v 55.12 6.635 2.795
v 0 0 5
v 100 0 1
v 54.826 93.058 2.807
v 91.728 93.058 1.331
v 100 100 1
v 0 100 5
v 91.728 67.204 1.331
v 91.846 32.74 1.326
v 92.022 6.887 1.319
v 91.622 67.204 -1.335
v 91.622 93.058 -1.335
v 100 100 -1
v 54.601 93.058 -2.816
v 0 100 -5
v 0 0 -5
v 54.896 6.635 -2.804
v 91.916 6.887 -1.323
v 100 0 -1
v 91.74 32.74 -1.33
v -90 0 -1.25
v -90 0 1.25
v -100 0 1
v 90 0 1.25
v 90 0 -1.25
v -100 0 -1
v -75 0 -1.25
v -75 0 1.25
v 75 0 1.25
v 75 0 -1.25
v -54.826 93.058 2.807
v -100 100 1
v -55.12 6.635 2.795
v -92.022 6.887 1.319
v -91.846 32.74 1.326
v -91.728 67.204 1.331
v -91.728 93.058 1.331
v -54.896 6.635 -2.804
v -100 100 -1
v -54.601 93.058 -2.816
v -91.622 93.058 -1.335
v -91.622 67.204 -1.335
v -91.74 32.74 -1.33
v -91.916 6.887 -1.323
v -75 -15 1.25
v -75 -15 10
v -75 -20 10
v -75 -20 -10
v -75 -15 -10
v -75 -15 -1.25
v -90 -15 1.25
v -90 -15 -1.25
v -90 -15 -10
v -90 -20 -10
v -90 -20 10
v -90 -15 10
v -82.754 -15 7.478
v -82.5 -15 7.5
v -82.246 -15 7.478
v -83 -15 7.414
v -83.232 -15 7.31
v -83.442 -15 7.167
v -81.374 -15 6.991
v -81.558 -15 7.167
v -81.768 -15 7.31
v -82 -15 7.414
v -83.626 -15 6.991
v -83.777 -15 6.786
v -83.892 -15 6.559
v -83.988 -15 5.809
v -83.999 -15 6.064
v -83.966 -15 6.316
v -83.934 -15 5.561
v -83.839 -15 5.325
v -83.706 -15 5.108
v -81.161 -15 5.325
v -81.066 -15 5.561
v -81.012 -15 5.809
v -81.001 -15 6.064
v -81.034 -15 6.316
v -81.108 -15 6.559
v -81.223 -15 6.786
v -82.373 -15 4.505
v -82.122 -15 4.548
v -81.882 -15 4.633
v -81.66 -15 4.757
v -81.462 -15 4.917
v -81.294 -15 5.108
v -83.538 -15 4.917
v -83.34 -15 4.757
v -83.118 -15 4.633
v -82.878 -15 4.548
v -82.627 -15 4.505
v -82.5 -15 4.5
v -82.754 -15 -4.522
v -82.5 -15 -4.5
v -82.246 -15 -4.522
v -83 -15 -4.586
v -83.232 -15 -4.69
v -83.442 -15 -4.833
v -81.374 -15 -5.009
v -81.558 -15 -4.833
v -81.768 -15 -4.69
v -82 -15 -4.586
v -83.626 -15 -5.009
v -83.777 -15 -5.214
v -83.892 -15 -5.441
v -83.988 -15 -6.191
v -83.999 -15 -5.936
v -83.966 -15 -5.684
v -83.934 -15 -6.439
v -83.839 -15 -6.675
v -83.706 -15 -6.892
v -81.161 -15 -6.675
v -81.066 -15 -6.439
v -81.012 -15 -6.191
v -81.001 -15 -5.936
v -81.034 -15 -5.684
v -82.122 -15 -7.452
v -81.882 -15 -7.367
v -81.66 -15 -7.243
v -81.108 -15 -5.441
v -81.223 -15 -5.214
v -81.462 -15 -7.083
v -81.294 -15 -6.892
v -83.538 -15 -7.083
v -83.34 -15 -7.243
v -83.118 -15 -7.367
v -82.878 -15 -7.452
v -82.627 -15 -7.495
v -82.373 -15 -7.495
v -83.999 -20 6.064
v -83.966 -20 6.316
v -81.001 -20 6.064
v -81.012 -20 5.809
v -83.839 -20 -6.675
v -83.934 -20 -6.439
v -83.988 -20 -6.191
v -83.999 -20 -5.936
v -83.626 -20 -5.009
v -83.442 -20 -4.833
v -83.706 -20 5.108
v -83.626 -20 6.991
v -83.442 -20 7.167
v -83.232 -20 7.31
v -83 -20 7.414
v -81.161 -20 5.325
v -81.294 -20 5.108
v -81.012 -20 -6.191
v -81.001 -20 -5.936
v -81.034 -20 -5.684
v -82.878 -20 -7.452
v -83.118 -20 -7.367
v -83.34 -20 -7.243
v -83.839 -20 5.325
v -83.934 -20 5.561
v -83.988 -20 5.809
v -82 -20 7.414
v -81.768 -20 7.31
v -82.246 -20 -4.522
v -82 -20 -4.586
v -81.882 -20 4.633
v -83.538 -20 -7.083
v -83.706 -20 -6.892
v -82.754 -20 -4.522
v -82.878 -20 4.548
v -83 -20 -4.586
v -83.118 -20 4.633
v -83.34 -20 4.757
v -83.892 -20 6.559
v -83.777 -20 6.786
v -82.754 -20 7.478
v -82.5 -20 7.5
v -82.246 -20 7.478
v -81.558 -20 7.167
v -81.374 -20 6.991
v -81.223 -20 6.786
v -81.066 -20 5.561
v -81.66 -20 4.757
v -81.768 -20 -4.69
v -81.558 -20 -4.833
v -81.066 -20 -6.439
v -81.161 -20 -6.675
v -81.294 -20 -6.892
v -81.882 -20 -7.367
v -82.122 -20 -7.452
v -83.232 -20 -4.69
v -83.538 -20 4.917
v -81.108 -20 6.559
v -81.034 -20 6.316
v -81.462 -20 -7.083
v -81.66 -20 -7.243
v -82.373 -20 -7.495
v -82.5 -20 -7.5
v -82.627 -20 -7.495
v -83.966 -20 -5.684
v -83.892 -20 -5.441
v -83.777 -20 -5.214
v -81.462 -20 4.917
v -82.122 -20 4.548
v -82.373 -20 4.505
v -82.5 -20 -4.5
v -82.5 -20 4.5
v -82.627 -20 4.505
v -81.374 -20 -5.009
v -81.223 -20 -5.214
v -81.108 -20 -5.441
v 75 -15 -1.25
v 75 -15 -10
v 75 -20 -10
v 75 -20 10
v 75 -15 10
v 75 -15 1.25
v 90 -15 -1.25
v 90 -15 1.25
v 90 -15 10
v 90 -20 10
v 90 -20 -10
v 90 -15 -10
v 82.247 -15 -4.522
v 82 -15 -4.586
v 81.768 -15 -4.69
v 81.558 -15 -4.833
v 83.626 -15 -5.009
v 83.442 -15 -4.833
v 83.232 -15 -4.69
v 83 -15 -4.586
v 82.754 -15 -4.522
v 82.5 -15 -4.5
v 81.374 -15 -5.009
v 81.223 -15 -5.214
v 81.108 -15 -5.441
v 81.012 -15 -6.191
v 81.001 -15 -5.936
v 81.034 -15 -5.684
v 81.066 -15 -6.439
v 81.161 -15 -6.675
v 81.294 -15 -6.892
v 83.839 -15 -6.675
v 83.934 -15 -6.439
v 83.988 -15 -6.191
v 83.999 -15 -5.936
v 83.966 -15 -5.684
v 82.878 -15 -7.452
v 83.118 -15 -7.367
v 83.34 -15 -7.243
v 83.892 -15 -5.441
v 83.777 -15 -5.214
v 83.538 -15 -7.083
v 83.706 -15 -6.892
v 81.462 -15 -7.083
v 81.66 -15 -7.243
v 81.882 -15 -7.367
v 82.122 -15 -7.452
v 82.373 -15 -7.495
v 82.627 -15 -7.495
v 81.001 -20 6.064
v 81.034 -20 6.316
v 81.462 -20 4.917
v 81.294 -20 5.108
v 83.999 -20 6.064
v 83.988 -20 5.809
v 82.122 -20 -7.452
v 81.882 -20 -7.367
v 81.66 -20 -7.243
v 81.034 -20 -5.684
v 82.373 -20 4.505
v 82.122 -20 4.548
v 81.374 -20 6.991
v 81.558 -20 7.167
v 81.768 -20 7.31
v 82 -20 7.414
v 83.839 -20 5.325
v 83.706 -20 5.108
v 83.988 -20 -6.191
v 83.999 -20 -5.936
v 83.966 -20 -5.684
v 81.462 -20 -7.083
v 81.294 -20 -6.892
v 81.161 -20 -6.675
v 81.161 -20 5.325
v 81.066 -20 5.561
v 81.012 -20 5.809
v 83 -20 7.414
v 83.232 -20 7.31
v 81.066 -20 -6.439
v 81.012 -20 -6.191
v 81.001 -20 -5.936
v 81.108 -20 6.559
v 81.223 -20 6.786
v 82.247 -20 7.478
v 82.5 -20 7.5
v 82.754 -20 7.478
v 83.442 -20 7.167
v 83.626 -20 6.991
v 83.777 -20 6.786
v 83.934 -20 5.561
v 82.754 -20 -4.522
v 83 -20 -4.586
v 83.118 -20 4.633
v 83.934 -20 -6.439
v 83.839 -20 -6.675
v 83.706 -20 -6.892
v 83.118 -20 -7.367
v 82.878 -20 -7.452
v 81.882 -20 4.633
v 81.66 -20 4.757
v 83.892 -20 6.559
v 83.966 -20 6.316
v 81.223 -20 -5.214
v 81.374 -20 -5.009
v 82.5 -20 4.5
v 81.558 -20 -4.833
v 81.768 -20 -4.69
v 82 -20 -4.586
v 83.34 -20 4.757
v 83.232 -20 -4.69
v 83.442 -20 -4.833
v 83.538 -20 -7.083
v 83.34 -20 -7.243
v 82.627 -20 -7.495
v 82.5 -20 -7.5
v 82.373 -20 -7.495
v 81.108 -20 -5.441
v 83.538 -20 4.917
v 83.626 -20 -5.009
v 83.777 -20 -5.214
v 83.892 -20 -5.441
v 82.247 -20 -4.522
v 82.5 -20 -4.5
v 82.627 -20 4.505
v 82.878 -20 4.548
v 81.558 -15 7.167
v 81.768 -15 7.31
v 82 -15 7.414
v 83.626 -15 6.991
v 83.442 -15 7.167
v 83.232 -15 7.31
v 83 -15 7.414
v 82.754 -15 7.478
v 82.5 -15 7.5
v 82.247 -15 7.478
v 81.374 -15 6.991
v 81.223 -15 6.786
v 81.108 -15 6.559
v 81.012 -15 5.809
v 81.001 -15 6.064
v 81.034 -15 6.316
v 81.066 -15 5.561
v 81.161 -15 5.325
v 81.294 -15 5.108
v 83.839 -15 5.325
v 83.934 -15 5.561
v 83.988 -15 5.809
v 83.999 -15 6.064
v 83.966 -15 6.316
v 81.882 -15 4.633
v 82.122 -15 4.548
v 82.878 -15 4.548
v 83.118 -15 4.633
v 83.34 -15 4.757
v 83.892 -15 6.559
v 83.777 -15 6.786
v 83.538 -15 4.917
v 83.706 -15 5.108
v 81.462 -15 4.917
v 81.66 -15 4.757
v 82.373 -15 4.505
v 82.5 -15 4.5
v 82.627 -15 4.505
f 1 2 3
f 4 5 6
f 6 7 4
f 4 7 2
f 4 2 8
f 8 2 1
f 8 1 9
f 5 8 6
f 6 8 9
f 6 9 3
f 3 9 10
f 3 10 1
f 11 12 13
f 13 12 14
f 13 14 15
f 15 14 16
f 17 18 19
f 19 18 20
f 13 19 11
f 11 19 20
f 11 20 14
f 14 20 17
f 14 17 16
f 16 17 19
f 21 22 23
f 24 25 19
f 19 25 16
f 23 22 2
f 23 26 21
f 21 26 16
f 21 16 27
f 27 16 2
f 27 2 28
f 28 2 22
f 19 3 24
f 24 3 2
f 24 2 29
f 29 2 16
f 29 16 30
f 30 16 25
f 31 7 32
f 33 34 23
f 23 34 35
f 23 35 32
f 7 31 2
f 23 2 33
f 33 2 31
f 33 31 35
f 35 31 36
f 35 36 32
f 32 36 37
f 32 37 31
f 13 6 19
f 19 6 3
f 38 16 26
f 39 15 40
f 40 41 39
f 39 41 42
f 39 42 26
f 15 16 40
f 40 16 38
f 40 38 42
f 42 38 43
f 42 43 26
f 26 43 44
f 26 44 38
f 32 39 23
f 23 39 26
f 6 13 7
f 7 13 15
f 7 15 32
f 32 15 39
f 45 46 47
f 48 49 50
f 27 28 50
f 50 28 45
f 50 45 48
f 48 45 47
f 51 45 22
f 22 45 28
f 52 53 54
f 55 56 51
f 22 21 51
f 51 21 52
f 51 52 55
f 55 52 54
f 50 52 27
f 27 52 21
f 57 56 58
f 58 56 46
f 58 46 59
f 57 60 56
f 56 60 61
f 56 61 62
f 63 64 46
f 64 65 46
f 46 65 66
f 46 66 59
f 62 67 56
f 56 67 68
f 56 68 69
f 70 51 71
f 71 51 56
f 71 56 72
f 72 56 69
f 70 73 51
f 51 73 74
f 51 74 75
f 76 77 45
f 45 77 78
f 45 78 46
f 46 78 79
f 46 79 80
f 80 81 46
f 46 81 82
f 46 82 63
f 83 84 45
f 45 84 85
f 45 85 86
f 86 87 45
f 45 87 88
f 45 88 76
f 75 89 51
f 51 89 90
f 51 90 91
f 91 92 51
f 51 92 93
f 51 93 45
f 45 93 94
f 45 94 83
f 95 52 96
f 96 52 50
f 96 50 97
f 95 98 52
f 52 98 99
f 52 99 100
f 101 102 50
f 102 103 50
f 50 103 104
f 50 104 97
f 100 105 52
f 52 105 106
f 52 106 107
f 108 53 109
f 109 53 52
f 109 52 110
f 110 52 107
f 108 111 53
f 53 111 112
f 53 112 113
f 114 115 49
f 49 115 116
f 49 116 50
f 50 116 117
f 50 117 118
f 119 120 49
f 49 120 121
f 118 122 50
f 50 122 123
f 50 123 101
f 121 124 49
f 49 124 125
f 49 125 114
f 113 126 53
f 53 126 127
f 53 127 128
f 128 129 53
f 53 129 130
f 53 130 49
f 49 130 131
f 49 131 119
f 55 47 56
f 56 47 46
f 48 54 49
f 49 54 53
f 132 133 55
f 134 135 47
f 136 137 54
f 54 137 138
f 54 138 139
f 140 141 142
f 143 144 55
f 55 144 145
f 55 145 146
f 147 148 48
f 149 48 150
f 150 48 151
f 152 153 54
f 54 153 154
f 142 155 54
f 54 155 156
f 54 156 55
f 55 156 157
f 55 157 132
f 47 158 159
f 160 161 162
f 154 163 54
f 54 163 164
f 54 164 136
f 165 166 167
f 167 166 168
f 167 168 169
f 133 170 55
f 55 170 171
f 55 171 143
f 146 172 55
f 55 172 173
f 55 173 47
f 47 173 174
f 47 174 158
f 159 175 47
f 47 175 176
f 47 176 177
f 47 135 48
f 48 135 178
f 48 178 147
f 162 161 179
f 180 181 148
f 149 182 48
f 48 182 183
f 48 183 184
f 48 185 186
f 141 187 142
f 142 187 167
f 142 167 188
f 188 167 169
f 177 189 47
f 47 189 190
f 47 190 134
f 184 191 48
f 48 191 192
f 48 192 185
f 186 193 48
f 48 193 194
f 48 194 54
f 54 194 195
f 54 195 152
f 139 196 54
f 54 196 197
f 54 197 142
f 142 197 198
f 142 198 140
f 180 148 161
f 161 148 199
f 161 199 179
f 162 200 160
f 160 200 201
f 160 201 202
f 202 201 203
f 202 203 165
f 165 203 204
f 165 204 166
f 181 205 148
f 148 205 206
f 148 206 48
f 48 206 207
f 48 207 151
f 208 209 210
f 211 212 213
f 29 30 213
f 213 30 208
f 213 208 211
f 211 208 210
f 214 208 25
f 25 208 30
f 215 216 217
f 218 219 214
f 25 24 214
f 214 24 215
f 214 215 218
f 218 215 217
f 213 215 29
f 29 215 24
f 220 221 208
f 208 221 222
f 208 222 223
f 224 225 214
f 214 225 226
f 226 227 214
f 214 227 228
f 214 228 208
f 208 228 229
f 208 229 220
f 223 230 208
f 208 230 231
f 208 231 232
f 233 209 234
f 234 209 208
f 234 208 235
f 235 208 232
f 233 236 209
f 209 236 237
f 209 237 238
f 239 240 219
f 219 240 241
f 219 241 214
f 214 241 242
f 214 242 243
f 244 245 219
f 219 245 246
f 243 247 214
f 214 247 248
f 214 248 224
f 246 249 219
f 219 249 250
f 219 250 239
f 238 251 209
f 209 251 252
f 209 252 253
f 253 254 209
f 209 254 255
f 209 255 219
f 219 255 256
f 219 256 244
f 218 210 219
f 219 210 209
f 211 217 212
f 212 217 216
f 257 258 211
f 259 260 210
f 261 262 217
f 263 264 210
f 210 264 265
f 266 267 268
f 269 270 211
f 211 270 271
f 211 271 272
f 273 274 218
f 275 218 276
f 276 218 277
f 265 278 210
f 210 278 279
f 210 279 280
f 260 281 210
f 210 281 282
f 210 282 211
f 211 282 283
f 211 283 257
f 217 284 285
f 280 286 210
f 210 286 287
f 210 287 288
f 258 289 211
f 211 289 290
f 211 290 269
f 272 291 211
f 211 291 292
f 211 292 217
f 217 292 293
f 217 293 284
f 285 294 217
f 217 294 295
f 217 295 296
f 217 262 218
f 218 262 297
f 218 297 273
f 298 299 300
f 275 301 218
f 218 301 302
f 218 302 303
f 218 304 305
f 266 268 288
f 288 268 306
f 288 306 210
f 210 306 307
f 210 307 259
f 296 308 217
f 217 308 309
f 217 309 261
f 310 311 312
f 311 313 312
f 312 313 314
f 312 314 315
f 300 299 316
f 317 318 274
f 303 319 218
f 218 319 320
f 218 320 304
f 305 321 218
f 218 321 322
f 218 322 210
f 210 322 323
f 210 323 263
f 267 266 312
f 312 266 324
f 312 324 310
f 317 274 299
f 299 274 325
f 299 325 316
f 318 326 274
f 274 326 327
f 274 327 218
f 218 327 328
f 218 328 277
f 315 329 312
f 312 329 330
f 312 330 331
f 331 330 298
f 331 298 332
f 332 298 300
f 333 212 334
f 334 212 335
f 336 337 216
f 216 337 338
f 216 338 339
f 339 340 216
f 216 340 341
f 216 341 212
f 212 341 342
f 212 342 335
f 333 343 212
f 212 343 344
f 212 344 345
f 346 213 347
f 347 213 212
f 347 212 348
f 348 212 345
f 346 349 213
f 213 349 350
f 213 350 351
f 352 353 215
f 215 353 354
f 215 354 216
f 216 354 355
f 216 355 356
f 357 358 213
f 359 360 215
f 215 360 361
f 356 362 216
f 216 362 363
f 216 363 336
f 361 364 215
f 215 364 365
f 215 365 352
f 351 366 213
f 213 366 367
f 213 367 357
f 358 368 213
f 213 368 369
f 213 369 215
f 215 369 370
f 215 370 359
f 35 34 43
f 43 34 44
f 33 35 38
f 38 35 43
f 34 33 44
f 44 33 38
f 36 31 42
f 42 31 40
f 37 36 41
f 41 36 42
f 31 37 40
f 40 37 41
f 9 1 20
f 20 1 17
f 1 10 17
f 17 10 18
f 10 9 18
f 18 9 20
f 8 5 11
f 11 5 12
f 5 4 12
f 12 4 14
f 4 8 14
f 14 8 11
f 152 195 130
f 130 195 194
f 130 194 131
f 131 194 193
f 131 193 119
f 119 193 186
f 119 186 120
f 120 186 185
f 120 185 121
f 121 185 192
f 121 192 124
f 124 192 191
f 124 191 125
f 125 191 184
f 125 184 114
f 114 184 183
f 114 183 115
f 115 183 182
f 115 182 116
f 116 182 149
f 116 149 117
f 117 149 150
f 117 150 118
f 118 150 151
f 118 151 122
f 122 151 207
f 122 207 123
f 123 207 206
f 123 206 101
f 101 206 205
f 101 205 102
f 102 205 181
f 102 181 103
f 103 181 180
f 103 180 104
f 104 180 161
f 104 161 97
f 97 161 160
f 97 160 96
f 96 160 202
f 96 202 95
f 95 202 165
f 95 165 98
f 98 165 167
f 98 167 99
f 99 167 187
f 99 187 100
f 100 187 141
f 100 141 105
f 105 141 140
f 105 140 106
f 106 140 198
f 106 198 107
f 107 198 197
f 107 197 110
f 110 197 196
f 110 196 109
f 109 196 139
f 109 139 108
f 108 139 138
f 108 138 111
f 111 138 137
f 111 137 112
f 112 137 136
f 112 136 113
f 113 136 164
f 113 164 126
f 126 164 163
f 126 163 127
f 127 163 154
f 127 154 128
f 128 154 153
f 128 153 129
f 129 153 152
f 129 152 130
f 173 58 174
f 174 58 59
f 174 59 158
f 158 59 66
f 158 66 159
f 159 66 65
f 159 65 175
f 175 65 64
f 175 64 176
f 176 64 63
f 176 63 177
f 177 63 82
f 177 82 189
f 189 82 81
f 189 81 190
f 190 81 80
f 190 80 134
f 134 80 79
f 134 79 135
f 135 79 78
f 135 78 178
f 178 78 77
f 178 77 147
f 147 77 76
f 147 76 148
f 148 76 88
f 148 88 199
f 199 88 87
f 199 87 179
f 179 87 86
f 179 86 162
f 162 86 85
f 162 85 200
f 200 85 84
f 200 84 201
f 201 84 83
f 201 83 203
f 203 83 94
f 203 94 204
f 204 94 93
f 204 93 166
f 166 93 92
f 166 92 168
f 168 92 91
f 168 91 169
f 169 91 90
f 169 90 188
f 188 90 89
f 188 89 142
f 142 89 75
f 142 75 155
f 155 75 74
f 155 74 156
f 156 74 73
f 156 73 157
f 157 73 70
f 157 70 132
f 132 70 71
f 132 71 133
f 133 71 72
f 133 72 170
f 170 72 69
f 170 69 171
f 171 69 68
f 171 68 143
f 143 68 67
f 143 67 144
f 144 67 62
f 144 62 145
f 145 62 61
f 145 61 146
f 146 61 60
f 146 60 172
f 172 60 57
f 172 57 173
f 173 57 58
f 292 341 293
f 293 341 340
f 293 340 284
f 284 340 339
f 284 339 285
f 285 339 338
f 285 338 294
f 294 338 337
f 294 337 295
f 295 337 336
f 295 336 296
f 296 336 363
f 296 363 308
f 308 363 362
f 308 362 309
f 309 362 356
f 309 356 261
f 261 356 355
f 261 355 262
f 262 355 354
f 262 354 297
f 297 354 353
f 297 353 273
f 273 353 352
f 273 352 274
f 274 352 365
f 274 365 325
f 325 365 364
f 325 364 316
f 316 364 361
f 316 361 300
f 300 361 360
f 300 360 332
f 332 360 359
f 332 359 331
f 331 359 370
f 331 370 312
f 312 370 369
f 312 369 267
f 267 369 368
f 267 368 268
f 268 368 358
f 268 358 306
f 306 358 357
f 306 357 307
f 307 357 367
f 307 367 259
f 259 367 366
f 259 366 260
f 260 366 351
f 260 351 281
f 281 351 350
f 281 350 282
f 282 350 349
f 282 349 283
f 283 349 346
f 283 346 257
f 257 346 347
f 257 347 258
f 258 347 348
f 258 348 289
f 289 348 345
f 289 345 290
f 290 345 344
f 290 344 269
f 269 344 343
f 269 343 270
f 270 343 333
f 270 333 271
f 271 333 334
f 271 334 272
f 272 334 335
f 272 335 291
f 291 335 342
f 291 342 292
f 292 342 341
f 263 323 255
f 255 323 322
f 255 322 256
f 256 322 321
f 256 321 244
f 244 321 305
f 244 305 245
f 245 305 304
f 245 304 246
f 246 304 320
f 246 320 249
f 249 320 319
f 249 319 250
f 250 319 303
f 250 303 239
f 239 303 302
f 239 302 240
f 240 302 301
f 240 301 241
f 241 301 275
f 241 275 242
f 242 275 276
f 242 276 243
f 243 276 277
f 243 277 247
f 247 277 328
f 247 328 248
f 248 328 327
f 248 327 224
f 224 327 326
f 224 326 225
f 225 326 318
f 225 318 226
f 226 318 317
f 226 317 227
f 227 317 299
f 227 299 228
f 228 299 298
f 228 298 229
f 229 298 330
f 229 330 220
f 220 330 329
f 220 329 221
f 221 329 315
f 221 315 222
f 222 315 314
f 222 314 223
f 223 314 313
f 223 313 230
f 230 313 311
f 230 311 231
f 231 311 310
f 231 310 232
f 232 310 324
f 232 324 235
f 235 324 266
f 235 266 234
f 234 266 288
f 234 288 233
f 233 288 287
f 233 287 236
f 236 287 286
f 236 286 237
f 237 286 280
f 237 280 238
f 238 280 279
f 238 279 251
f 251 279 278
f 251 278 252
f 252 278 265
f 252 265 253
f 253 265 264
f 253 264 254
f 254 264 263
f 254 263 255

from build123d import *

# Parameters (mm, degrees)
BOSS_EXTRUDE4_DEPTH     = 100
SKETCH8_W               = 15
SKETCH8_H               = 2.5
BOSS_EXTRUDE5_DEPTH     = 15
SKETCH9_W               = 15
SKETCH9_H               = 20
BOSS_EXTRUDE6_DEPTH     = 5
CUT_EXTRUDE1_REACH      = 144.354
SKETCH11_R              = 1.5
CUT_EXTRUDE2_DEPTH      = 5
MIRROR4_COPY_1_SKETCH_R = 1.5
MIRROR4_COPY_1_DEPTH    = 5


with BuildPart() as part:
    # Sketch7 → Boss-Extrude4 (new body)
    with BuildSketch(Plane(origin=(0, 0, 0), x_dir=(1, 0, 0), z_dir=(0, 1, 0))):
        Polygon((100, -1), (100, 1), (0, 5), (-100, 1), (-100, -1), (0, -5), align=None)
    extrude(amount=BOSS_EXTRUDE4_DEPTH)

    # Sketch8 → Boss-Extrude5 (add)
    with BuildSketch(Plane.XZ):
        with Locations((-82.5, 0)):
            Rectangle(SKETCH8_W, SKETCH8_H)
    boss_extrude5 = extrude(amount=BOSS_EXTRUDE5_DEPTH)

    # Sketch9 → Boss-Extrude6 (add)
    with BuildSketch(Plane.XZ.offset(15)):
        with Locations((-82.5, 0)):
            Rectangle(SKETCH9_W, SKETCH9_H)
    boss_extrude6 = extrude(amount=BOSS_EXTRUDE6_DEPTH)

    # Mirror1: Boss-Extrude5, Boss-Extrude6 across plane
    add(boss_extrude5.mirror(Plane(origin=(0, 0, 0), x_dir=(0, 0, 1), z_dir=(1, 0, 0))))
    add(boss_extrude6.mirror(Plane(origin=(0, 0, 0), x_dir=(0, 0, 1), z_dir=(1, 0, 0))))

    # Cut-Extrude1: up to this plane
    cut_extrude1_end = Plane(origin=(-100, 100, -1), z_dir=(0.03996803834887159, 0, 0.9992009587217895))
    # Sketch10 → Cut-Extrude1 (cut, up to the surface)
    with BuildSketch(Plane(origin=(-0.199680511, 0, 4.99201278), x_dir=(0.9992009587217895, 0, 0.03996803834887158), z_dir=(-0.039968038348871575, 0, 0.9992009587217894)), mode=Mode.PRIVATE) as cut_extrude1_sk1:
        Polygon((-91.601994525, 67.204299414), (-91.601994525, 93.057612221), (-54.669790851, 93.057612221), align=None)
    cut_extrude1_tool1 = split(extrude(cut_extrude1_sk1.sketch, amount=-CUT_EXTRUDE1_REACH, mode=Mode.PRIVATE), bisect_by=cut_extrude1_end, keep=Keep.BOTH, mode=Mode.PRIVATE)
    # Sketch10 → Cut-Extrude1 (cut, up to the surface)
    with BuildSketch(Plane(origin=(-0.199680511, 0, 4.99201278), x_dir=(0.9992009587217895, 0, 0.03996803834887158), z_dir=(-0.039968038348871575, 0, 0.9992009587217894)), mode=Mode.PRIVATE) as cut_extrude1_sk2:
        Polygon((-91.895790601, 6.886941419), (-54.964445552, 6.635106072), (-91.719500606, 32.739653171), align=None)
    cut_extrude1_tool2 = split(extrude(cut_extrude1_sk2.sketch, amount=-CUT_EXTRUDE1_REACH, mode=Mode.PRIVATE), bisect_by=cut_extrude1_end, keep=Keep.BOTH, mode=Mode.PRIVATE)
    cut_extrude1 = cut_extrude1_tool1.solids().sort_by_distance((-79.427583, 84.439841, 1.822897))[0] + cut_extrude1_tool2.solids().sort_by_distance((-79.662714, 15.420567, 1.813491))[0]
    add(cut_extrude1, mode=Mode.SUBTRACT)

    # Mirror2: Cut-Extrude1 across plane
    add(cut_extrude1.mirror(Plane(origin=(0, 0, 0), x_dir=(0, 0, 1), z_dir=(1, 0, 0))), mode=Mode.SUBTRACT)

    # Sketch11 → Cut-Extrude2 (cut)
    with BuildSketch(Plane(origin=(0, -15, 0), x_dir=(1, 0, 0), z_dir=(0, 1, 0))):
        with Locations(Location((-82.5, 6, 0), (0, 0, 270))):
            Circle(SKETCH11_R)
    cut_extrude2 = extrude(amount=-CUT_EXTRUDE2_DEPTH, mode=Mode.SUBTRACT)

    # Mirror3: Cut-Extrude2 across plane
    add(cut_extrude2.mirror(Plane.XY), mode=Mode.SUBTRACT)

    # Mirror4: Cut-Extrude2 across plane
    add(cut_extrude2.mirror(Plane(origin=(0, 0, 0), x_dir=(0, 0, 1), z_dir=(1, 0, 0))), mode=Mode.SUBTRACT)

    # Mirror4 copy 1 sketch → Mirror4 copy 1 (cut)
    with BuildSketch(Plane(origin=(0, -15, 0), x_dir=(-1, 0, 0), z_dir=(0, 1, 0))):
        with Locations(Location((-82.5, 6, 0), (0, 0, 270))):
            Circle(MIRROR4_COPY_1_SKETCH_R)
    extrude(amount=-MIRROR4_COPY_1_DEPTH, mode=Mode.SUBTRACT)


solid = part.part
